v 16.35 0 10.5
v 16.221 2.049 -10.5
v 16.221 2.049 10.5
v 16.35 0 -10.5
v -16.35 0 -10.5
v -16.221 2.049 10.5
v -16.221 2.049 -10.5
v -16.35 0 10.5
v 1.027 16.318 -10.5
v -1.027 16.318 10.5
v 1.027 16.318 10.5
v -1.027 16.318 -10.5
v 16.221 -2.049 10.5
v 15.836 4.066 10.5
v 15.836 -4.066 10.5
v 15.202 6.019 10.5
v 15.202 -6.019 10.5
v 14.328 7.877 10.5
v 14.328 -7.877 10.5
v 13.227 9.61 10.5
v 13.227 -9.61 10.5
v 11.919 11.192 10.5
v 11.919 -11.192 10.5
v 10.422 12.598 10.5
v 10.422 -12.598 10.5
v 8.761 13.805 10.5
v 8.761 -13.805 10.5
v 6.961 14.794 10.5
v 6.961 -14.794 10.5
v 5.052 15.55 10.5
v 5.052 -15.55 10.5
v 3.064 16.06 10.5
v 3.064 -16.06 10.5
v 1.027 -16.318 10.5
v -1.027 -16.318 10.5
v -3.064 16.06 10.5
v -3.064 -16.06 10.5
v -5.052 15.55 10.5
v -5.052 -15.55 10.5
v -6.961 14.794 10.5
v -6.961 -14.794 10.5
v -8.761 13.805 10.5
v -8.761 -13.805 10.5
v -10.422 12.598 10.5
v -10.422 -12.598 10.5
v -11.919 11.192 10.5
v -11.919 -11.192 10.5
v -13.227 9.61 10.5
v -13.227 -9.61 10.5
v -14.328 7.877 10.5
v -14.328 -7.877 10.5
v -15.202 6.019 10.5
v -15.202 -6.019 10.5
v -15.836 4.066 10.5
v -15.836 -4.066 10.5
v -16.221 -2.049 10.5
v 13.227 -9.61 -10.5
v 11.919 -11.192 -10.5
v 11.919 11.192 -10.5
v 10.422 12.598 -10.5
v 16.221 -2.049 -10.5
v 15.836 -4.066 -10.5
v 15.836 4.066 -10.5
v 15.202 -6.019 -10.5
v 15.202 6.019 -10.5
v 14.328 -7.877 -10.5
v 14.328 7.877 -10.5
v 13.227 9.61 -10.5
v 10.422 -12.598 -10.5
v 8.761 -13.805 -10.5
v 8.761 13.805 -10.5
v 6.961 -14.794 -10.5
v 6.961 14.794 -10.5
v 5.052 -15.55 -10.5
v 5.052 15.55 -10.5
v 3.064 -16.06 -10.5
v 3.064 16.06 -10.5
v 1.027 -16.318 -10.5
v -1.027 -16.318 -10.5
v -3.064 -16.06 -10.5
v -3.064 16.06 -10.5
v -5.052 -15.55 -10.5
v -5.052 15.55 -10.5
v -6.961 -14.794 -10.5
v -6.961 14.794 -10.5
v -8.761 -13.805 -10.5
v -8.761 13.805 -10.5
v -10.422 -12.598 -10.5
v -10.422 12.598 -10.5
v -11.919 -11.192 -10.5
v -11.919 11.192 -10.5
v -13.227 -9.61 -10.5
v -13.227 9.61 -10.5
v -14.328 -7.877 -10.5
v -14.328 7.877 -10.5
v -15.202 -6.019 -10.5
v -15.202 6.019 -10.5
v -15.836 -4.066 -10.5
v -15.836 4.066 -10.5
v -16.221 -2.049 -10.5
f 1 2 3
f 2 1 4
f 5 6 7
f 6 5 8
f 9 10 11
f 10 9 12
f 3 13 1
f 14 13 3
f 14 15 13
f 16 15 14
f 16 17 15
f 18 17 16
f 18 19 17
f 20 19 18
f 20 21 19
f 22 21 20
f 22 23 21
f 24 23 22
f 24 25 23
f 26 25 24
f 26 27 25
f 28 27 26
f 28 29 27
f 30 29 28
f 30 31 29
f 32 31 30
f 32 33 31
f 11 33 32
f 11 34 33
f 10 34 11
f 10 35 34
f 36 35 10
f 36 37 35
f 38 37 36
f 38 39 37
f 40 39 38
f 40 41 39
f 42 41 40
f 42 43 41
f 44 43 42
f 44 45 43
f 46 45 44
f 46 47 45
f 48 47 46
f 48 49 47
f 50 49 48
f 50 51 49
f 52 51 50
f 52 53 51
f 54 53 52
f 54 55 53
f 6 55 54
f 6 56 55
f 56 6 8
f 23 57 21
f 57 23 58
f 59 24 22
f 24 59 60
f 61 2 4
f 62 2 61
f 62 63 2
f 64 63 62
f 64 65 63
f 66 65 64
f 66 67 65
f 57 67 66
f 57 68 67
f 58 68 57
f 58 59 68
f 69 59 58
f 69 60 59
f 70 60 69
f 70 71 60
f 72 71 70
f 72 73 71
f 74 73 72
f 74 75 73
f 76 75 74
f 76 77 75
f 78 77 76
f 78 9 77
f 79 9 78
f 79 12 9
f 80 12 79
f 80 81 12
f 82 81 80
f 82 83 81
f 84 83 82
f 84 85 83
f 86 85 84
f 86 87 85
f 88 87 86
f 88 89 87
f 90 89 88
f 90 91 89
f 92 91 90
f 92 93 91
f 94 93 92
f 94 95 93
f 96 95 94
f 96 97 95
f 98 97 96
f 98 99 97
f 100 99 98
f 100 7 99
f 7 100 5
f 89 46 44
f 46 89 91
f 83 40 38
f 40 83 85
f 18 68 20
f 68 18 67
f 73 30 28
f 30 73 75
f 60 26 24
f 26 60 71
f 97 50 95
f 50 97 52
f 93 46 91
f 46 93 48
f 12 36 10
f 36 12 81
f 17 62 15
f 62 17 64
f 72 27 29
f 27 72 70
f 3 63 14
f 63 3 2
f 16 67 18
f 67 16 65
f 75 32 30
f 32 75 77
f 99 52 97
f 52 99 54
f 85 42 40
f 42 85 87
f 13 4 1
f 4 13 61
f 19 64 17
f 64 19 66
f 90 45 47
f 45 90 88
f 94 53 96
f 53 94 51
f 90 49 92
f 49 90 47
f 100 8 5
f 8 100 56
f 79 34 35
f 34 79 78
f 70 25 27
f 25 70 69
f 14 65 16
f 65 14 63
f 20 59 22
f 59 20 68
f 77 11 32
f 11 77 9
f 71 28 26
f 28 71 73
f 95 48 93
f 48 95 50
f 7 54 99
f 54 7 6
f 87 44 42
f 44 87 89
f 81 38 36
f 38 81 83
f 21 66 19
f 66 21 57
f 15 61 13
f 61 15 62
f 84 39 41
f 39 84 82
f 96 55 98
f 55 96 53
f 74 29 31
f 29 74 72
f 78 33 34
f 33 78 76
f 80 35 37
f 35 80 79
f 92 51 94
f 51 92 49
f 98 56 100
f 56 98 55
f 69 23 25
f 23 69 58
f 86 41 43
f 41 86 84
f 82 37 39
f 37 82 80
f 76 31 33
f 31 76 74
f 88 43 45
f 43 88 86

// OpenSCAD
$fn = 50;


difference() {
	union() {
		translate(v = [0, 0, -10.5000000000]) {
			cylinder(h = 21, r = 16.3500000000);
		}
	}
	union() {
		translate(v = [0, 0, -100.0000000000]) {
			cylinder(h = 200, r = 0);
		}
	}
}
